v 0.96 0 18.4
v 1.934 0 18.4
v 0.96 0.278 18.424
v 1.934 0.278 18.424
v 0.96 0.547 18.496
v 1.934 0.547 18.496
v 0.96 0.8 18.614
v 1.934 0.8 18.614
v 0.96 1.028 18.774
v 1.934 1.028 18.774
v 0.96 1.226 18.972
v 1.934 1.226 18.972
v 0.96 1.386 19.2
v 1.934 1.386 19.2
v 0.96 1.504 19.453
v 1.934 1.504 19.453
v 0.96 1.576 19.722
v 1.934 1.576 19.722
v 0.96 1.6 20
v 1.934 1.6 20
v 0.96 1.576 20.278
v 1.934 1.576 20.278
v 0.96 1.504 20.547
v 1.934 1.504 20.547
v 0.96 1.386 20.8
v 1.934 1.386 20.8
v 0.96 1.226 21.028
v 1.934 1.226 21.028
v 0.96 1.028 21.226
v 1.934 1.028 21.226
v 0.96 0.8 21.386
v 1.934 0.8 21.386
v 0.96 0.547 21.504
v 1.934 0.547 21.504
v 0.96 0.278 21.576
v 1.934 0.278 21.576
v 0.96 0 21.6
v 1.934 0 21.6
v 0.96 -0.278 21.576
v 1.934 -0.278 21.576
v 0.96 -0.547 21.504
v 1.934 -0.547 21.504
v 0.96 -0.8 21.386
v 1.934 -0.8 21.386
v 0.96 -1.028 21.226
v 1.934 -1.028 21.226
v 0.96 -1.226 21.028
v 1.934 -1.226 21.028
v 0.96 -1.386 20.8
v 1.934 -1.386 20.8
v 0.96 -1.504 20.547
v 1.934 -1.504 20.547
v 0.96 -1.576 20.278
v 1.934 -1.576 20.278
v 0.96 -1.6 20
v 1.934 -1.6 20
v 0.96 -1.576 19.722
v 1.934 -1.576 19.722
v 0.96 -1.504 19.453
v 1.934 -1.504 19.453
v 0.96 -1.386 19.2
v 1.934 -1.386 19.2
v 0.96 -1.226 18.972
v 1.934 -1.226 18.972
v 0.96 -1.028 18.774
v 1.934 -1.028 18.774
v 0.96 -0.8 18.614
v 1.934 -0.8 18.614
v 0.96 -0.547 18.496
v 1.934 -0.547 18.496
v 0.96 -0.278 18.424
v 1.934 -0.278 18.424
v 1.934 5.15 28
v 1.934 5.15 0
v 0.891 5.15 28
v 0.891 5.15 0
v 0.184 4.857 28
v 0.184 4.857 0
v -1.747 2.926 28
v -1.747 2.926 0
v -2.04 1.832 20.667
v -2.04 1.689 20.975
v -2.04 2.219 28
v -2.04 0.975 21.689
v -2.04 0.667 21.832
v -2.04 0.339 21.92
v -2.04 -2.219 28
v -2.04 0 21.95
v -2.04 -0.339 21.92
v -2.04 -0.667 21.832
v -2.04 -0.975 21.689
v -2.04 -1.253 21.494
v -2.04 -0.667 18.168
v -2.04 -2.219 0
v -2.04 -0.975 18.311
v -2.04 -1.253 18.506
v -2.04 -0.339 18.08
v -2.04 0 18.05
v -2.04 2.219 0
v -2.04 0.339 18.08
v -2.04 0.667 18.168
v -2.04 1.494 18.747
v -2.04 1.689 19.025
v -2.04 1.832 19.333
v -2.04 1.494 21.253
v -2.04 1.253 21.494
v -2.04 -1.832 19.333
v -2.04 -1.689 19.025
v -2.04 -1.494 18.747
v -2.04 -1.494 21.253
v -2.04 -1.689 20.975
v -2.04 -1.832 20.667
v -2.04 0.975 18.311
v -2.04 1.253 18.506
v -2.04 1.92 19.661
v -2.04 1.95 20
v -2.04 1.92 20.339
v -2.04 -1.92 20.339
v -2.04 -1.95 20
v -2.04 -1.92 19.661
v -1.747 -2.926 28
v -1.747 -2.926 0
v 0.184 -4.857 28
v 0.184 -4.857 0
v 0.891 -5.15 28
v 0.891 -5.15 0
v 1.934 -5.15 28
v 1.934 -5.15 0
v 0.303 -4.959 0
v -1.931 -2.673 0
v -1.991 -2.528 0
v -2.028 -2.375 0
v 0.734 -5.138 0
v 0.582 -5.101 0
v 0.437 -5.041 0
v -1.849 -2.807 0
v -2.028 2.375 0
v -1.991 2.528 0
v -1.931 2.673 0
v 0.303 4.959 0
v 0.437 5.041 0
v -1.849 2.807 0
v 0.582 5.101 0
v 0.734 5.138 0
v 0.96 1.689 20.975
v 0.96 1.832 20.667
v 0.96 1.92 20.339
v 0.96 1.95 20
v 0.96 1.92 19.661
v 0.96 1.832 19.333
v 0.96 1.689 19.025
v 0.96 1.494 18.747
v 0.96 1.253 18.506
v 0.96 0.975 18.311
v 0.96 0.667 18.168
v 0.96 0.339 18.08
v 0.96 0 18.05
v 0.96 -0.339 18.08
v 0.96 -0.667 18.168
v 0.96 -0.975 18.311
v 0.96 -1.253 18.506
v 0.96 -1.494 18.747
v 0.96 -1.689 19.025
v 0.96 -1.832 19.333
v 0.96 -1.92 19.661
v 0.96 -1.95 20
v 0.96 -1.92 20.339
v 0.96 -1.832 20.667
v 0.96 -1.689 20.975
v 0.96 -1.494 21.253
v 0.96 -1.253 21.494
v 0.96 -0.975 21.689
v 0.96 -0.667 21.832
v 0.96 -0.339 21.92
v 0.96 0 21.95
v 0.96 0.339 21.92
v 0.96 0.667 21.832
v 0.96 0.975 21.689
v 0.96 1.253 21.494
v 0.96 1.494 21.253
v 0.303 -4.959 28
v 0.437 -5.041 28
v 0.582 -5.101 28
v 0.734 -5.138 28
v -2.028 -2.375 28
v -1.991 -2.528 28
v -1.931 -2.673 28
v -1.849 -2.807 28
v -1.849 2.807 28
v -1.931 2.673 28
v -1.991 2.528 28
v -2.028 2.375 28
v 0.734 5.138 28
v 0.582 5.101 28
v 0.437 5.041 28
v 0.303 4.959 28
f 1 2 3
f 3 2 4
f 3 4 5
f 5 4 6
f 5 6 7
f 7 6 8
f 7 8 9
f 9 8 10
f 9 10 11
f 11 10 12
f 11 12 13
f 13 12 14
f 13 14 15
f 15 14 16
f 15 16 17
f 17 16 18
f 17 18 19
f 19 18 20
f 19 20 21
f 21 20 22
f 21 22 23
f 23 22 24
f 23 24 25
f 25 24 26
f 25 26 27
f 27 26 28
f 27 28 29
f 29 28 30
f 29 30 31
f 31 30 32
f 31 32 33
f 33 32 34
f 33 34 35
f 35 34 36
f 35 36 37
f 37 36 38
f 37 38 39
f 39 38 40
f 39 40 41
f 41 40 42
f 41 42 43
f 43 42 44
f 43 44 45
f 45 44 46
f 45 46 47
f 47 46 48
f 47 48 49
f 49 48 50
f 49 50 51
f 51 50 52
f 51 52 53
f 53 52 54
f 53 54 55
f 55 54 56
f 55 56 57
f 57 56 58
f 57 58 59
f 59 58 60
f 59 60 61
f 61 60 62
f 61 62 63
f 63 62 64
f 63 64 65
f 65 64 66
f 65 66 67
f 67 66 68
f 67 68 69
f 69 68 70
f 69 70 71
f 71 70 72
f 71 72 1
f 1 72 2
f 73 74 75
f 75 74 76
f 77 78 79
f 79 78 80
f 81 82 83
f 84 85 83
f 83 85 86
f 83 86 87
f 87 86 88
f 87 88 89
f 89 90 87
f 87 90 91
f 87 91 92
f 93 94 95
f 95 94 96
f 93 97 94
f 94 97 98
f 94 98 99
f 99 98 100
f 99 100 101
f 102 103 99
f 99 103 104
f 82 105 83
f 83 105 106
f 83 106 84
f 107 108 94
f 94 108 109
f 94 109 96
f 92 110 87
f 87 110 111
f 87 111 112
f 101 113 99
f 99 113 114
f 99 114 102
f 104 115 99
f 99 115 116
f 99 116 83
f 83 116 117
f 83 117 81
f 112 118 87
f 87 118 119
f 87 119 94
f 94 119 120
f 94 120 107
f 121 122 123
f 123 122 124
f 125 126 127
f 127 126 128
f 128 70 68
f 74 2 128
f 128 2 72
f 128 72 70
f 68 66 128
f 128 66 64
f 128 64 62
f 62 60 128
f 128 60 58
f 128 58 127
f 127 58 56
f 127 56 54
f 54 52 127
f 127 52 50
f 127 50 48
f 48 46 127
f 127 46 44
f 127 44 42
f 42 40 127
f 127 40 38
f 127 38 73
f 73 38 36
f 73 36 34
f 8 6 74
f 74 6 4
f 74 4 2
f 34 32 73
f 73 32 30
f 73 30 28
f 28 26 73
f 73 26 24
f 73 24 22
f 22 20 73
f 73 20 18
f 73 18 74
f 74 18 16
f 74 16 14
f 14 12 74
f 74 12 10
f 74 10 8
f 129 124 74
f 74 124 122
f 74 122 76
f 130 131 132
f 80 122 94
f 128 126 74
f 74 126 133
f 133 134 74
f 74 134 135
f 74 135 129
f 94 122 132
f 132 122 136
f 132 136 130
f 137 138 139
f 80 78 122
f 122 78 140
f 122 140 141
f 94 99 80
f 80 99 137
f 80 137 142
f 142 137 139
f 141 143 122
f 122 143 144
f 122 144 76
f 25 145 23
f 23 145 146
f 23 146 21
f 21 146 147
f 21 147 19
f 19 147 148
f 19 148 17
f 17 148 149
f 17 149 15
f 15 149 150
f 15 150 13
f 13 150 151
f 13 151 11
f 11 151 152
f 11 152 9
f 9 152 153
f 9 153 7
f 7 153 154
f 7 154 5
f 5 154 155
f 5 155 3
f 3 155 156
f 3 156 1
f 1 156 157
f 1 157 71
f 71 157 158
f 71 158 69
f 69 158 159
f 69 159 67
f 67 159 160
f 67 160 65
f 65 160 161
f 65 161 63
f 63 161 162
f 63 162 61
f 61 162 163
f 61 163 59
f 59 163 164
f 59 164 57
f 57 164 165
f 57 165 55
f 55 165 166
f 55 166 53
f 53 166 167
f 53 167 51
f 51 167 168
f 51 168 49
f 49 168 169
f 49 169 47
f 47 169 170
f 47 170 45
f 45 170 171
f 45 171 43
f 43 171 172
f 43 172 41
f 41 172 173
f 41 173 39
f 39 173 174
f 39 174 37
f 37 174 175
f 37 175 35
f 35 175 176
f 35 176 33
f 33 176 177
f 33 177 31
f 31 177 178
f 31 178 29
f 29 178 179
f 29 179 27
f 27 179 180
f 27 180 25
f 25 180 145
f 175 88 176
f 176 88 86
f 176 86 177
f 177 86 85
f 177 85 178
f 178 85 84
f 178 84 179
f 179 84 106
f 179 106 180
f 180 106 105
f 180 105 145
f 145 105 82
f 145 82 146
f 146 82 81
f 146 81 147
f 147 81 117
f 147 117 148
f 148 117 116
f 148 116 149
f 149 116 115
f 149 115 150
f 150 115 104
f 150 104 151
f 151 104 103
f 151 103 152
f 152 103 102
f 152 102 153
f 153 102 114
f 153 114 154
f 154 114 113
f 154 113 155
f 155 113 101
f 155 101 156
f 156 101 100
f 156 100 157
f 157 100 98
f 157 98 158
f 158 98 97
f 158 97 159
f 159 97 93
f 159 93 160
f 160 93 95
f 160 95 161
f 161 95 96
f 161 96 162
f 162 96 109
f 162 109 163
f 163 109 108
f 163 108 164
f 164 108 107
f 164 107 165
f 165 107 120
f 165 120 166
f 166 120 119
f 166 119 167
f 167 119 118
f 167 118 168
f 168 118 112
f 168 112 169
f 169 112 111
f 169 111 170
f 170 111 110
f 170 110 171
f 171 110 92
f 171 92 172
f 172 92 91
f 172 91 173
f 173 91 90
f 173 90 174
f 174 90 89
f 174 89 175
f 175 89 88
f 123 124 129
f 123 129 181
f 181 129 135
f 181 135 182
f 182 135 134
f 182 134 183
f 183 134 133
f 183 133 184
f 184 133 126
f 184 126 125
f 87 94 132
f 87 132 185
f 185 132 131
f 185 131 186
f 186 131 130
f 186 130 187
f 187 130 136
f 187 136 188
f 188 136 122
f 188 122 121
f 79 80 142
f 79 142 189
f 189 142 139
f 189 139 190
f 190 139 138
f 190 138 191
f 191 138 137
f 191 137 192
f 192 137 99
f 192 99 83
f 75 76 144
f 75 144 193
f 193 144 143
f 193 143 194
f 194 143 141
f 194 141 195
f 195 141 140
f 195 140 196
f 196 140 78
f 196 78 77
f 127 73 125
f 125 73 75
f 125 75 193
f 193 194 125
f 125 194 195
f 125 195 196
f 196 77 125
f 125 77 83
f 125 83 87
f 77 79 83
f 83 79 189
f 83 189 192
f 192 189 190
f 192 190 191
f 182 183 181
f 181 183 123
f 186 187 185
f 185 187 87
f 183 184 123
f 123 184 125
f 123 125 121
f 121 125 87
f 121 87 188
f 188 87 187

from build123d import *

# Parameters (mm, degrees)
BOSS_EXTRUDE1_DEPTH = 36
SKETCH2_R           = 1.6
CUT_EXTRUDE1_DEPTH  = 10
SKETCH3_R           = 1.95
CUT_EXTRUDE2_DEPTH  = 3
FILLET1_R           = 1
SKETCH4_W           = 8
SKETCH4_H           = 10.3
CUT_EXTRUDE3_DEPTH  = 10


with BuildPart() as part:
    # Sketch1 → Boss-Extrude1 (new body)
    with BuildSketch(Plane.XY):
        Polygon((1.933806537, 5.15), (1.933806537, -5.15), (0.476512405, -5.15), (-2.040358106, -2.633129489), (-2.040358106, 2.633129489), (0.476512405, 5.15), align=None)
    extrude(amount=BOSS_EXTRUDE1_DEPTH)

    # Sketch2 → Cut-Extrude1 (cut)
    with BuildSketch(Plane(origin=(1.933806537, 0, 0), x_dir=(0, 0, -1), z_dir=(1, 0, 0))):
        with Locations((-20, 0)):
            Circle(SKETCH2_R)
        with Locations((-31, 0)):
            Circle(SKETCH2_R)
    extrude(amount=-CUT_EXTRUDE1_DEPTH, mode=Mode.SUBTRACT)

    # Sketch3 → Cut-Extrude2 (cut)
    with BuildSketch(Plane.ZY.offset(2.040358106)):
        with Locations((20, 0)):
            Circle(SKETCH3_R)
        with Locations((31, 0)):
            Circle(SKETCH3_R)
    extrude(amount=-CUT_EXTRUDE2_DEPTH, mode=Mode.SUBTRACT)

    # Fillet1
    fillet1_edges = [part.edges().sort_by_distance(p)[0] for p in [
        (0.476512405, -5.15, 18),
        (-2.040358106, -2.633129489, 18),
        (-2.040358106, 2.633129489, 18),
        (0.476512405, 5.15, 18),
    ]]
    fillet(fillet1_edges, radius=FILLET1_R)

    # Sketch4 → Cut-Extrude3 (cut)
    with BuildSketch(Plane(origin=(1.933806537, 0, 0), x_dir=(0, 0, -1), z_dir=(1, 0, 0))):
        with Locations((-32, 0)):
            Rectangle(SKETCH4_W, SKETCH4_H)
    extrude(amount=-CUT_EXTRUDE3_DEPTH, mode=Mode.SUBTRACT)


solid = part.part
